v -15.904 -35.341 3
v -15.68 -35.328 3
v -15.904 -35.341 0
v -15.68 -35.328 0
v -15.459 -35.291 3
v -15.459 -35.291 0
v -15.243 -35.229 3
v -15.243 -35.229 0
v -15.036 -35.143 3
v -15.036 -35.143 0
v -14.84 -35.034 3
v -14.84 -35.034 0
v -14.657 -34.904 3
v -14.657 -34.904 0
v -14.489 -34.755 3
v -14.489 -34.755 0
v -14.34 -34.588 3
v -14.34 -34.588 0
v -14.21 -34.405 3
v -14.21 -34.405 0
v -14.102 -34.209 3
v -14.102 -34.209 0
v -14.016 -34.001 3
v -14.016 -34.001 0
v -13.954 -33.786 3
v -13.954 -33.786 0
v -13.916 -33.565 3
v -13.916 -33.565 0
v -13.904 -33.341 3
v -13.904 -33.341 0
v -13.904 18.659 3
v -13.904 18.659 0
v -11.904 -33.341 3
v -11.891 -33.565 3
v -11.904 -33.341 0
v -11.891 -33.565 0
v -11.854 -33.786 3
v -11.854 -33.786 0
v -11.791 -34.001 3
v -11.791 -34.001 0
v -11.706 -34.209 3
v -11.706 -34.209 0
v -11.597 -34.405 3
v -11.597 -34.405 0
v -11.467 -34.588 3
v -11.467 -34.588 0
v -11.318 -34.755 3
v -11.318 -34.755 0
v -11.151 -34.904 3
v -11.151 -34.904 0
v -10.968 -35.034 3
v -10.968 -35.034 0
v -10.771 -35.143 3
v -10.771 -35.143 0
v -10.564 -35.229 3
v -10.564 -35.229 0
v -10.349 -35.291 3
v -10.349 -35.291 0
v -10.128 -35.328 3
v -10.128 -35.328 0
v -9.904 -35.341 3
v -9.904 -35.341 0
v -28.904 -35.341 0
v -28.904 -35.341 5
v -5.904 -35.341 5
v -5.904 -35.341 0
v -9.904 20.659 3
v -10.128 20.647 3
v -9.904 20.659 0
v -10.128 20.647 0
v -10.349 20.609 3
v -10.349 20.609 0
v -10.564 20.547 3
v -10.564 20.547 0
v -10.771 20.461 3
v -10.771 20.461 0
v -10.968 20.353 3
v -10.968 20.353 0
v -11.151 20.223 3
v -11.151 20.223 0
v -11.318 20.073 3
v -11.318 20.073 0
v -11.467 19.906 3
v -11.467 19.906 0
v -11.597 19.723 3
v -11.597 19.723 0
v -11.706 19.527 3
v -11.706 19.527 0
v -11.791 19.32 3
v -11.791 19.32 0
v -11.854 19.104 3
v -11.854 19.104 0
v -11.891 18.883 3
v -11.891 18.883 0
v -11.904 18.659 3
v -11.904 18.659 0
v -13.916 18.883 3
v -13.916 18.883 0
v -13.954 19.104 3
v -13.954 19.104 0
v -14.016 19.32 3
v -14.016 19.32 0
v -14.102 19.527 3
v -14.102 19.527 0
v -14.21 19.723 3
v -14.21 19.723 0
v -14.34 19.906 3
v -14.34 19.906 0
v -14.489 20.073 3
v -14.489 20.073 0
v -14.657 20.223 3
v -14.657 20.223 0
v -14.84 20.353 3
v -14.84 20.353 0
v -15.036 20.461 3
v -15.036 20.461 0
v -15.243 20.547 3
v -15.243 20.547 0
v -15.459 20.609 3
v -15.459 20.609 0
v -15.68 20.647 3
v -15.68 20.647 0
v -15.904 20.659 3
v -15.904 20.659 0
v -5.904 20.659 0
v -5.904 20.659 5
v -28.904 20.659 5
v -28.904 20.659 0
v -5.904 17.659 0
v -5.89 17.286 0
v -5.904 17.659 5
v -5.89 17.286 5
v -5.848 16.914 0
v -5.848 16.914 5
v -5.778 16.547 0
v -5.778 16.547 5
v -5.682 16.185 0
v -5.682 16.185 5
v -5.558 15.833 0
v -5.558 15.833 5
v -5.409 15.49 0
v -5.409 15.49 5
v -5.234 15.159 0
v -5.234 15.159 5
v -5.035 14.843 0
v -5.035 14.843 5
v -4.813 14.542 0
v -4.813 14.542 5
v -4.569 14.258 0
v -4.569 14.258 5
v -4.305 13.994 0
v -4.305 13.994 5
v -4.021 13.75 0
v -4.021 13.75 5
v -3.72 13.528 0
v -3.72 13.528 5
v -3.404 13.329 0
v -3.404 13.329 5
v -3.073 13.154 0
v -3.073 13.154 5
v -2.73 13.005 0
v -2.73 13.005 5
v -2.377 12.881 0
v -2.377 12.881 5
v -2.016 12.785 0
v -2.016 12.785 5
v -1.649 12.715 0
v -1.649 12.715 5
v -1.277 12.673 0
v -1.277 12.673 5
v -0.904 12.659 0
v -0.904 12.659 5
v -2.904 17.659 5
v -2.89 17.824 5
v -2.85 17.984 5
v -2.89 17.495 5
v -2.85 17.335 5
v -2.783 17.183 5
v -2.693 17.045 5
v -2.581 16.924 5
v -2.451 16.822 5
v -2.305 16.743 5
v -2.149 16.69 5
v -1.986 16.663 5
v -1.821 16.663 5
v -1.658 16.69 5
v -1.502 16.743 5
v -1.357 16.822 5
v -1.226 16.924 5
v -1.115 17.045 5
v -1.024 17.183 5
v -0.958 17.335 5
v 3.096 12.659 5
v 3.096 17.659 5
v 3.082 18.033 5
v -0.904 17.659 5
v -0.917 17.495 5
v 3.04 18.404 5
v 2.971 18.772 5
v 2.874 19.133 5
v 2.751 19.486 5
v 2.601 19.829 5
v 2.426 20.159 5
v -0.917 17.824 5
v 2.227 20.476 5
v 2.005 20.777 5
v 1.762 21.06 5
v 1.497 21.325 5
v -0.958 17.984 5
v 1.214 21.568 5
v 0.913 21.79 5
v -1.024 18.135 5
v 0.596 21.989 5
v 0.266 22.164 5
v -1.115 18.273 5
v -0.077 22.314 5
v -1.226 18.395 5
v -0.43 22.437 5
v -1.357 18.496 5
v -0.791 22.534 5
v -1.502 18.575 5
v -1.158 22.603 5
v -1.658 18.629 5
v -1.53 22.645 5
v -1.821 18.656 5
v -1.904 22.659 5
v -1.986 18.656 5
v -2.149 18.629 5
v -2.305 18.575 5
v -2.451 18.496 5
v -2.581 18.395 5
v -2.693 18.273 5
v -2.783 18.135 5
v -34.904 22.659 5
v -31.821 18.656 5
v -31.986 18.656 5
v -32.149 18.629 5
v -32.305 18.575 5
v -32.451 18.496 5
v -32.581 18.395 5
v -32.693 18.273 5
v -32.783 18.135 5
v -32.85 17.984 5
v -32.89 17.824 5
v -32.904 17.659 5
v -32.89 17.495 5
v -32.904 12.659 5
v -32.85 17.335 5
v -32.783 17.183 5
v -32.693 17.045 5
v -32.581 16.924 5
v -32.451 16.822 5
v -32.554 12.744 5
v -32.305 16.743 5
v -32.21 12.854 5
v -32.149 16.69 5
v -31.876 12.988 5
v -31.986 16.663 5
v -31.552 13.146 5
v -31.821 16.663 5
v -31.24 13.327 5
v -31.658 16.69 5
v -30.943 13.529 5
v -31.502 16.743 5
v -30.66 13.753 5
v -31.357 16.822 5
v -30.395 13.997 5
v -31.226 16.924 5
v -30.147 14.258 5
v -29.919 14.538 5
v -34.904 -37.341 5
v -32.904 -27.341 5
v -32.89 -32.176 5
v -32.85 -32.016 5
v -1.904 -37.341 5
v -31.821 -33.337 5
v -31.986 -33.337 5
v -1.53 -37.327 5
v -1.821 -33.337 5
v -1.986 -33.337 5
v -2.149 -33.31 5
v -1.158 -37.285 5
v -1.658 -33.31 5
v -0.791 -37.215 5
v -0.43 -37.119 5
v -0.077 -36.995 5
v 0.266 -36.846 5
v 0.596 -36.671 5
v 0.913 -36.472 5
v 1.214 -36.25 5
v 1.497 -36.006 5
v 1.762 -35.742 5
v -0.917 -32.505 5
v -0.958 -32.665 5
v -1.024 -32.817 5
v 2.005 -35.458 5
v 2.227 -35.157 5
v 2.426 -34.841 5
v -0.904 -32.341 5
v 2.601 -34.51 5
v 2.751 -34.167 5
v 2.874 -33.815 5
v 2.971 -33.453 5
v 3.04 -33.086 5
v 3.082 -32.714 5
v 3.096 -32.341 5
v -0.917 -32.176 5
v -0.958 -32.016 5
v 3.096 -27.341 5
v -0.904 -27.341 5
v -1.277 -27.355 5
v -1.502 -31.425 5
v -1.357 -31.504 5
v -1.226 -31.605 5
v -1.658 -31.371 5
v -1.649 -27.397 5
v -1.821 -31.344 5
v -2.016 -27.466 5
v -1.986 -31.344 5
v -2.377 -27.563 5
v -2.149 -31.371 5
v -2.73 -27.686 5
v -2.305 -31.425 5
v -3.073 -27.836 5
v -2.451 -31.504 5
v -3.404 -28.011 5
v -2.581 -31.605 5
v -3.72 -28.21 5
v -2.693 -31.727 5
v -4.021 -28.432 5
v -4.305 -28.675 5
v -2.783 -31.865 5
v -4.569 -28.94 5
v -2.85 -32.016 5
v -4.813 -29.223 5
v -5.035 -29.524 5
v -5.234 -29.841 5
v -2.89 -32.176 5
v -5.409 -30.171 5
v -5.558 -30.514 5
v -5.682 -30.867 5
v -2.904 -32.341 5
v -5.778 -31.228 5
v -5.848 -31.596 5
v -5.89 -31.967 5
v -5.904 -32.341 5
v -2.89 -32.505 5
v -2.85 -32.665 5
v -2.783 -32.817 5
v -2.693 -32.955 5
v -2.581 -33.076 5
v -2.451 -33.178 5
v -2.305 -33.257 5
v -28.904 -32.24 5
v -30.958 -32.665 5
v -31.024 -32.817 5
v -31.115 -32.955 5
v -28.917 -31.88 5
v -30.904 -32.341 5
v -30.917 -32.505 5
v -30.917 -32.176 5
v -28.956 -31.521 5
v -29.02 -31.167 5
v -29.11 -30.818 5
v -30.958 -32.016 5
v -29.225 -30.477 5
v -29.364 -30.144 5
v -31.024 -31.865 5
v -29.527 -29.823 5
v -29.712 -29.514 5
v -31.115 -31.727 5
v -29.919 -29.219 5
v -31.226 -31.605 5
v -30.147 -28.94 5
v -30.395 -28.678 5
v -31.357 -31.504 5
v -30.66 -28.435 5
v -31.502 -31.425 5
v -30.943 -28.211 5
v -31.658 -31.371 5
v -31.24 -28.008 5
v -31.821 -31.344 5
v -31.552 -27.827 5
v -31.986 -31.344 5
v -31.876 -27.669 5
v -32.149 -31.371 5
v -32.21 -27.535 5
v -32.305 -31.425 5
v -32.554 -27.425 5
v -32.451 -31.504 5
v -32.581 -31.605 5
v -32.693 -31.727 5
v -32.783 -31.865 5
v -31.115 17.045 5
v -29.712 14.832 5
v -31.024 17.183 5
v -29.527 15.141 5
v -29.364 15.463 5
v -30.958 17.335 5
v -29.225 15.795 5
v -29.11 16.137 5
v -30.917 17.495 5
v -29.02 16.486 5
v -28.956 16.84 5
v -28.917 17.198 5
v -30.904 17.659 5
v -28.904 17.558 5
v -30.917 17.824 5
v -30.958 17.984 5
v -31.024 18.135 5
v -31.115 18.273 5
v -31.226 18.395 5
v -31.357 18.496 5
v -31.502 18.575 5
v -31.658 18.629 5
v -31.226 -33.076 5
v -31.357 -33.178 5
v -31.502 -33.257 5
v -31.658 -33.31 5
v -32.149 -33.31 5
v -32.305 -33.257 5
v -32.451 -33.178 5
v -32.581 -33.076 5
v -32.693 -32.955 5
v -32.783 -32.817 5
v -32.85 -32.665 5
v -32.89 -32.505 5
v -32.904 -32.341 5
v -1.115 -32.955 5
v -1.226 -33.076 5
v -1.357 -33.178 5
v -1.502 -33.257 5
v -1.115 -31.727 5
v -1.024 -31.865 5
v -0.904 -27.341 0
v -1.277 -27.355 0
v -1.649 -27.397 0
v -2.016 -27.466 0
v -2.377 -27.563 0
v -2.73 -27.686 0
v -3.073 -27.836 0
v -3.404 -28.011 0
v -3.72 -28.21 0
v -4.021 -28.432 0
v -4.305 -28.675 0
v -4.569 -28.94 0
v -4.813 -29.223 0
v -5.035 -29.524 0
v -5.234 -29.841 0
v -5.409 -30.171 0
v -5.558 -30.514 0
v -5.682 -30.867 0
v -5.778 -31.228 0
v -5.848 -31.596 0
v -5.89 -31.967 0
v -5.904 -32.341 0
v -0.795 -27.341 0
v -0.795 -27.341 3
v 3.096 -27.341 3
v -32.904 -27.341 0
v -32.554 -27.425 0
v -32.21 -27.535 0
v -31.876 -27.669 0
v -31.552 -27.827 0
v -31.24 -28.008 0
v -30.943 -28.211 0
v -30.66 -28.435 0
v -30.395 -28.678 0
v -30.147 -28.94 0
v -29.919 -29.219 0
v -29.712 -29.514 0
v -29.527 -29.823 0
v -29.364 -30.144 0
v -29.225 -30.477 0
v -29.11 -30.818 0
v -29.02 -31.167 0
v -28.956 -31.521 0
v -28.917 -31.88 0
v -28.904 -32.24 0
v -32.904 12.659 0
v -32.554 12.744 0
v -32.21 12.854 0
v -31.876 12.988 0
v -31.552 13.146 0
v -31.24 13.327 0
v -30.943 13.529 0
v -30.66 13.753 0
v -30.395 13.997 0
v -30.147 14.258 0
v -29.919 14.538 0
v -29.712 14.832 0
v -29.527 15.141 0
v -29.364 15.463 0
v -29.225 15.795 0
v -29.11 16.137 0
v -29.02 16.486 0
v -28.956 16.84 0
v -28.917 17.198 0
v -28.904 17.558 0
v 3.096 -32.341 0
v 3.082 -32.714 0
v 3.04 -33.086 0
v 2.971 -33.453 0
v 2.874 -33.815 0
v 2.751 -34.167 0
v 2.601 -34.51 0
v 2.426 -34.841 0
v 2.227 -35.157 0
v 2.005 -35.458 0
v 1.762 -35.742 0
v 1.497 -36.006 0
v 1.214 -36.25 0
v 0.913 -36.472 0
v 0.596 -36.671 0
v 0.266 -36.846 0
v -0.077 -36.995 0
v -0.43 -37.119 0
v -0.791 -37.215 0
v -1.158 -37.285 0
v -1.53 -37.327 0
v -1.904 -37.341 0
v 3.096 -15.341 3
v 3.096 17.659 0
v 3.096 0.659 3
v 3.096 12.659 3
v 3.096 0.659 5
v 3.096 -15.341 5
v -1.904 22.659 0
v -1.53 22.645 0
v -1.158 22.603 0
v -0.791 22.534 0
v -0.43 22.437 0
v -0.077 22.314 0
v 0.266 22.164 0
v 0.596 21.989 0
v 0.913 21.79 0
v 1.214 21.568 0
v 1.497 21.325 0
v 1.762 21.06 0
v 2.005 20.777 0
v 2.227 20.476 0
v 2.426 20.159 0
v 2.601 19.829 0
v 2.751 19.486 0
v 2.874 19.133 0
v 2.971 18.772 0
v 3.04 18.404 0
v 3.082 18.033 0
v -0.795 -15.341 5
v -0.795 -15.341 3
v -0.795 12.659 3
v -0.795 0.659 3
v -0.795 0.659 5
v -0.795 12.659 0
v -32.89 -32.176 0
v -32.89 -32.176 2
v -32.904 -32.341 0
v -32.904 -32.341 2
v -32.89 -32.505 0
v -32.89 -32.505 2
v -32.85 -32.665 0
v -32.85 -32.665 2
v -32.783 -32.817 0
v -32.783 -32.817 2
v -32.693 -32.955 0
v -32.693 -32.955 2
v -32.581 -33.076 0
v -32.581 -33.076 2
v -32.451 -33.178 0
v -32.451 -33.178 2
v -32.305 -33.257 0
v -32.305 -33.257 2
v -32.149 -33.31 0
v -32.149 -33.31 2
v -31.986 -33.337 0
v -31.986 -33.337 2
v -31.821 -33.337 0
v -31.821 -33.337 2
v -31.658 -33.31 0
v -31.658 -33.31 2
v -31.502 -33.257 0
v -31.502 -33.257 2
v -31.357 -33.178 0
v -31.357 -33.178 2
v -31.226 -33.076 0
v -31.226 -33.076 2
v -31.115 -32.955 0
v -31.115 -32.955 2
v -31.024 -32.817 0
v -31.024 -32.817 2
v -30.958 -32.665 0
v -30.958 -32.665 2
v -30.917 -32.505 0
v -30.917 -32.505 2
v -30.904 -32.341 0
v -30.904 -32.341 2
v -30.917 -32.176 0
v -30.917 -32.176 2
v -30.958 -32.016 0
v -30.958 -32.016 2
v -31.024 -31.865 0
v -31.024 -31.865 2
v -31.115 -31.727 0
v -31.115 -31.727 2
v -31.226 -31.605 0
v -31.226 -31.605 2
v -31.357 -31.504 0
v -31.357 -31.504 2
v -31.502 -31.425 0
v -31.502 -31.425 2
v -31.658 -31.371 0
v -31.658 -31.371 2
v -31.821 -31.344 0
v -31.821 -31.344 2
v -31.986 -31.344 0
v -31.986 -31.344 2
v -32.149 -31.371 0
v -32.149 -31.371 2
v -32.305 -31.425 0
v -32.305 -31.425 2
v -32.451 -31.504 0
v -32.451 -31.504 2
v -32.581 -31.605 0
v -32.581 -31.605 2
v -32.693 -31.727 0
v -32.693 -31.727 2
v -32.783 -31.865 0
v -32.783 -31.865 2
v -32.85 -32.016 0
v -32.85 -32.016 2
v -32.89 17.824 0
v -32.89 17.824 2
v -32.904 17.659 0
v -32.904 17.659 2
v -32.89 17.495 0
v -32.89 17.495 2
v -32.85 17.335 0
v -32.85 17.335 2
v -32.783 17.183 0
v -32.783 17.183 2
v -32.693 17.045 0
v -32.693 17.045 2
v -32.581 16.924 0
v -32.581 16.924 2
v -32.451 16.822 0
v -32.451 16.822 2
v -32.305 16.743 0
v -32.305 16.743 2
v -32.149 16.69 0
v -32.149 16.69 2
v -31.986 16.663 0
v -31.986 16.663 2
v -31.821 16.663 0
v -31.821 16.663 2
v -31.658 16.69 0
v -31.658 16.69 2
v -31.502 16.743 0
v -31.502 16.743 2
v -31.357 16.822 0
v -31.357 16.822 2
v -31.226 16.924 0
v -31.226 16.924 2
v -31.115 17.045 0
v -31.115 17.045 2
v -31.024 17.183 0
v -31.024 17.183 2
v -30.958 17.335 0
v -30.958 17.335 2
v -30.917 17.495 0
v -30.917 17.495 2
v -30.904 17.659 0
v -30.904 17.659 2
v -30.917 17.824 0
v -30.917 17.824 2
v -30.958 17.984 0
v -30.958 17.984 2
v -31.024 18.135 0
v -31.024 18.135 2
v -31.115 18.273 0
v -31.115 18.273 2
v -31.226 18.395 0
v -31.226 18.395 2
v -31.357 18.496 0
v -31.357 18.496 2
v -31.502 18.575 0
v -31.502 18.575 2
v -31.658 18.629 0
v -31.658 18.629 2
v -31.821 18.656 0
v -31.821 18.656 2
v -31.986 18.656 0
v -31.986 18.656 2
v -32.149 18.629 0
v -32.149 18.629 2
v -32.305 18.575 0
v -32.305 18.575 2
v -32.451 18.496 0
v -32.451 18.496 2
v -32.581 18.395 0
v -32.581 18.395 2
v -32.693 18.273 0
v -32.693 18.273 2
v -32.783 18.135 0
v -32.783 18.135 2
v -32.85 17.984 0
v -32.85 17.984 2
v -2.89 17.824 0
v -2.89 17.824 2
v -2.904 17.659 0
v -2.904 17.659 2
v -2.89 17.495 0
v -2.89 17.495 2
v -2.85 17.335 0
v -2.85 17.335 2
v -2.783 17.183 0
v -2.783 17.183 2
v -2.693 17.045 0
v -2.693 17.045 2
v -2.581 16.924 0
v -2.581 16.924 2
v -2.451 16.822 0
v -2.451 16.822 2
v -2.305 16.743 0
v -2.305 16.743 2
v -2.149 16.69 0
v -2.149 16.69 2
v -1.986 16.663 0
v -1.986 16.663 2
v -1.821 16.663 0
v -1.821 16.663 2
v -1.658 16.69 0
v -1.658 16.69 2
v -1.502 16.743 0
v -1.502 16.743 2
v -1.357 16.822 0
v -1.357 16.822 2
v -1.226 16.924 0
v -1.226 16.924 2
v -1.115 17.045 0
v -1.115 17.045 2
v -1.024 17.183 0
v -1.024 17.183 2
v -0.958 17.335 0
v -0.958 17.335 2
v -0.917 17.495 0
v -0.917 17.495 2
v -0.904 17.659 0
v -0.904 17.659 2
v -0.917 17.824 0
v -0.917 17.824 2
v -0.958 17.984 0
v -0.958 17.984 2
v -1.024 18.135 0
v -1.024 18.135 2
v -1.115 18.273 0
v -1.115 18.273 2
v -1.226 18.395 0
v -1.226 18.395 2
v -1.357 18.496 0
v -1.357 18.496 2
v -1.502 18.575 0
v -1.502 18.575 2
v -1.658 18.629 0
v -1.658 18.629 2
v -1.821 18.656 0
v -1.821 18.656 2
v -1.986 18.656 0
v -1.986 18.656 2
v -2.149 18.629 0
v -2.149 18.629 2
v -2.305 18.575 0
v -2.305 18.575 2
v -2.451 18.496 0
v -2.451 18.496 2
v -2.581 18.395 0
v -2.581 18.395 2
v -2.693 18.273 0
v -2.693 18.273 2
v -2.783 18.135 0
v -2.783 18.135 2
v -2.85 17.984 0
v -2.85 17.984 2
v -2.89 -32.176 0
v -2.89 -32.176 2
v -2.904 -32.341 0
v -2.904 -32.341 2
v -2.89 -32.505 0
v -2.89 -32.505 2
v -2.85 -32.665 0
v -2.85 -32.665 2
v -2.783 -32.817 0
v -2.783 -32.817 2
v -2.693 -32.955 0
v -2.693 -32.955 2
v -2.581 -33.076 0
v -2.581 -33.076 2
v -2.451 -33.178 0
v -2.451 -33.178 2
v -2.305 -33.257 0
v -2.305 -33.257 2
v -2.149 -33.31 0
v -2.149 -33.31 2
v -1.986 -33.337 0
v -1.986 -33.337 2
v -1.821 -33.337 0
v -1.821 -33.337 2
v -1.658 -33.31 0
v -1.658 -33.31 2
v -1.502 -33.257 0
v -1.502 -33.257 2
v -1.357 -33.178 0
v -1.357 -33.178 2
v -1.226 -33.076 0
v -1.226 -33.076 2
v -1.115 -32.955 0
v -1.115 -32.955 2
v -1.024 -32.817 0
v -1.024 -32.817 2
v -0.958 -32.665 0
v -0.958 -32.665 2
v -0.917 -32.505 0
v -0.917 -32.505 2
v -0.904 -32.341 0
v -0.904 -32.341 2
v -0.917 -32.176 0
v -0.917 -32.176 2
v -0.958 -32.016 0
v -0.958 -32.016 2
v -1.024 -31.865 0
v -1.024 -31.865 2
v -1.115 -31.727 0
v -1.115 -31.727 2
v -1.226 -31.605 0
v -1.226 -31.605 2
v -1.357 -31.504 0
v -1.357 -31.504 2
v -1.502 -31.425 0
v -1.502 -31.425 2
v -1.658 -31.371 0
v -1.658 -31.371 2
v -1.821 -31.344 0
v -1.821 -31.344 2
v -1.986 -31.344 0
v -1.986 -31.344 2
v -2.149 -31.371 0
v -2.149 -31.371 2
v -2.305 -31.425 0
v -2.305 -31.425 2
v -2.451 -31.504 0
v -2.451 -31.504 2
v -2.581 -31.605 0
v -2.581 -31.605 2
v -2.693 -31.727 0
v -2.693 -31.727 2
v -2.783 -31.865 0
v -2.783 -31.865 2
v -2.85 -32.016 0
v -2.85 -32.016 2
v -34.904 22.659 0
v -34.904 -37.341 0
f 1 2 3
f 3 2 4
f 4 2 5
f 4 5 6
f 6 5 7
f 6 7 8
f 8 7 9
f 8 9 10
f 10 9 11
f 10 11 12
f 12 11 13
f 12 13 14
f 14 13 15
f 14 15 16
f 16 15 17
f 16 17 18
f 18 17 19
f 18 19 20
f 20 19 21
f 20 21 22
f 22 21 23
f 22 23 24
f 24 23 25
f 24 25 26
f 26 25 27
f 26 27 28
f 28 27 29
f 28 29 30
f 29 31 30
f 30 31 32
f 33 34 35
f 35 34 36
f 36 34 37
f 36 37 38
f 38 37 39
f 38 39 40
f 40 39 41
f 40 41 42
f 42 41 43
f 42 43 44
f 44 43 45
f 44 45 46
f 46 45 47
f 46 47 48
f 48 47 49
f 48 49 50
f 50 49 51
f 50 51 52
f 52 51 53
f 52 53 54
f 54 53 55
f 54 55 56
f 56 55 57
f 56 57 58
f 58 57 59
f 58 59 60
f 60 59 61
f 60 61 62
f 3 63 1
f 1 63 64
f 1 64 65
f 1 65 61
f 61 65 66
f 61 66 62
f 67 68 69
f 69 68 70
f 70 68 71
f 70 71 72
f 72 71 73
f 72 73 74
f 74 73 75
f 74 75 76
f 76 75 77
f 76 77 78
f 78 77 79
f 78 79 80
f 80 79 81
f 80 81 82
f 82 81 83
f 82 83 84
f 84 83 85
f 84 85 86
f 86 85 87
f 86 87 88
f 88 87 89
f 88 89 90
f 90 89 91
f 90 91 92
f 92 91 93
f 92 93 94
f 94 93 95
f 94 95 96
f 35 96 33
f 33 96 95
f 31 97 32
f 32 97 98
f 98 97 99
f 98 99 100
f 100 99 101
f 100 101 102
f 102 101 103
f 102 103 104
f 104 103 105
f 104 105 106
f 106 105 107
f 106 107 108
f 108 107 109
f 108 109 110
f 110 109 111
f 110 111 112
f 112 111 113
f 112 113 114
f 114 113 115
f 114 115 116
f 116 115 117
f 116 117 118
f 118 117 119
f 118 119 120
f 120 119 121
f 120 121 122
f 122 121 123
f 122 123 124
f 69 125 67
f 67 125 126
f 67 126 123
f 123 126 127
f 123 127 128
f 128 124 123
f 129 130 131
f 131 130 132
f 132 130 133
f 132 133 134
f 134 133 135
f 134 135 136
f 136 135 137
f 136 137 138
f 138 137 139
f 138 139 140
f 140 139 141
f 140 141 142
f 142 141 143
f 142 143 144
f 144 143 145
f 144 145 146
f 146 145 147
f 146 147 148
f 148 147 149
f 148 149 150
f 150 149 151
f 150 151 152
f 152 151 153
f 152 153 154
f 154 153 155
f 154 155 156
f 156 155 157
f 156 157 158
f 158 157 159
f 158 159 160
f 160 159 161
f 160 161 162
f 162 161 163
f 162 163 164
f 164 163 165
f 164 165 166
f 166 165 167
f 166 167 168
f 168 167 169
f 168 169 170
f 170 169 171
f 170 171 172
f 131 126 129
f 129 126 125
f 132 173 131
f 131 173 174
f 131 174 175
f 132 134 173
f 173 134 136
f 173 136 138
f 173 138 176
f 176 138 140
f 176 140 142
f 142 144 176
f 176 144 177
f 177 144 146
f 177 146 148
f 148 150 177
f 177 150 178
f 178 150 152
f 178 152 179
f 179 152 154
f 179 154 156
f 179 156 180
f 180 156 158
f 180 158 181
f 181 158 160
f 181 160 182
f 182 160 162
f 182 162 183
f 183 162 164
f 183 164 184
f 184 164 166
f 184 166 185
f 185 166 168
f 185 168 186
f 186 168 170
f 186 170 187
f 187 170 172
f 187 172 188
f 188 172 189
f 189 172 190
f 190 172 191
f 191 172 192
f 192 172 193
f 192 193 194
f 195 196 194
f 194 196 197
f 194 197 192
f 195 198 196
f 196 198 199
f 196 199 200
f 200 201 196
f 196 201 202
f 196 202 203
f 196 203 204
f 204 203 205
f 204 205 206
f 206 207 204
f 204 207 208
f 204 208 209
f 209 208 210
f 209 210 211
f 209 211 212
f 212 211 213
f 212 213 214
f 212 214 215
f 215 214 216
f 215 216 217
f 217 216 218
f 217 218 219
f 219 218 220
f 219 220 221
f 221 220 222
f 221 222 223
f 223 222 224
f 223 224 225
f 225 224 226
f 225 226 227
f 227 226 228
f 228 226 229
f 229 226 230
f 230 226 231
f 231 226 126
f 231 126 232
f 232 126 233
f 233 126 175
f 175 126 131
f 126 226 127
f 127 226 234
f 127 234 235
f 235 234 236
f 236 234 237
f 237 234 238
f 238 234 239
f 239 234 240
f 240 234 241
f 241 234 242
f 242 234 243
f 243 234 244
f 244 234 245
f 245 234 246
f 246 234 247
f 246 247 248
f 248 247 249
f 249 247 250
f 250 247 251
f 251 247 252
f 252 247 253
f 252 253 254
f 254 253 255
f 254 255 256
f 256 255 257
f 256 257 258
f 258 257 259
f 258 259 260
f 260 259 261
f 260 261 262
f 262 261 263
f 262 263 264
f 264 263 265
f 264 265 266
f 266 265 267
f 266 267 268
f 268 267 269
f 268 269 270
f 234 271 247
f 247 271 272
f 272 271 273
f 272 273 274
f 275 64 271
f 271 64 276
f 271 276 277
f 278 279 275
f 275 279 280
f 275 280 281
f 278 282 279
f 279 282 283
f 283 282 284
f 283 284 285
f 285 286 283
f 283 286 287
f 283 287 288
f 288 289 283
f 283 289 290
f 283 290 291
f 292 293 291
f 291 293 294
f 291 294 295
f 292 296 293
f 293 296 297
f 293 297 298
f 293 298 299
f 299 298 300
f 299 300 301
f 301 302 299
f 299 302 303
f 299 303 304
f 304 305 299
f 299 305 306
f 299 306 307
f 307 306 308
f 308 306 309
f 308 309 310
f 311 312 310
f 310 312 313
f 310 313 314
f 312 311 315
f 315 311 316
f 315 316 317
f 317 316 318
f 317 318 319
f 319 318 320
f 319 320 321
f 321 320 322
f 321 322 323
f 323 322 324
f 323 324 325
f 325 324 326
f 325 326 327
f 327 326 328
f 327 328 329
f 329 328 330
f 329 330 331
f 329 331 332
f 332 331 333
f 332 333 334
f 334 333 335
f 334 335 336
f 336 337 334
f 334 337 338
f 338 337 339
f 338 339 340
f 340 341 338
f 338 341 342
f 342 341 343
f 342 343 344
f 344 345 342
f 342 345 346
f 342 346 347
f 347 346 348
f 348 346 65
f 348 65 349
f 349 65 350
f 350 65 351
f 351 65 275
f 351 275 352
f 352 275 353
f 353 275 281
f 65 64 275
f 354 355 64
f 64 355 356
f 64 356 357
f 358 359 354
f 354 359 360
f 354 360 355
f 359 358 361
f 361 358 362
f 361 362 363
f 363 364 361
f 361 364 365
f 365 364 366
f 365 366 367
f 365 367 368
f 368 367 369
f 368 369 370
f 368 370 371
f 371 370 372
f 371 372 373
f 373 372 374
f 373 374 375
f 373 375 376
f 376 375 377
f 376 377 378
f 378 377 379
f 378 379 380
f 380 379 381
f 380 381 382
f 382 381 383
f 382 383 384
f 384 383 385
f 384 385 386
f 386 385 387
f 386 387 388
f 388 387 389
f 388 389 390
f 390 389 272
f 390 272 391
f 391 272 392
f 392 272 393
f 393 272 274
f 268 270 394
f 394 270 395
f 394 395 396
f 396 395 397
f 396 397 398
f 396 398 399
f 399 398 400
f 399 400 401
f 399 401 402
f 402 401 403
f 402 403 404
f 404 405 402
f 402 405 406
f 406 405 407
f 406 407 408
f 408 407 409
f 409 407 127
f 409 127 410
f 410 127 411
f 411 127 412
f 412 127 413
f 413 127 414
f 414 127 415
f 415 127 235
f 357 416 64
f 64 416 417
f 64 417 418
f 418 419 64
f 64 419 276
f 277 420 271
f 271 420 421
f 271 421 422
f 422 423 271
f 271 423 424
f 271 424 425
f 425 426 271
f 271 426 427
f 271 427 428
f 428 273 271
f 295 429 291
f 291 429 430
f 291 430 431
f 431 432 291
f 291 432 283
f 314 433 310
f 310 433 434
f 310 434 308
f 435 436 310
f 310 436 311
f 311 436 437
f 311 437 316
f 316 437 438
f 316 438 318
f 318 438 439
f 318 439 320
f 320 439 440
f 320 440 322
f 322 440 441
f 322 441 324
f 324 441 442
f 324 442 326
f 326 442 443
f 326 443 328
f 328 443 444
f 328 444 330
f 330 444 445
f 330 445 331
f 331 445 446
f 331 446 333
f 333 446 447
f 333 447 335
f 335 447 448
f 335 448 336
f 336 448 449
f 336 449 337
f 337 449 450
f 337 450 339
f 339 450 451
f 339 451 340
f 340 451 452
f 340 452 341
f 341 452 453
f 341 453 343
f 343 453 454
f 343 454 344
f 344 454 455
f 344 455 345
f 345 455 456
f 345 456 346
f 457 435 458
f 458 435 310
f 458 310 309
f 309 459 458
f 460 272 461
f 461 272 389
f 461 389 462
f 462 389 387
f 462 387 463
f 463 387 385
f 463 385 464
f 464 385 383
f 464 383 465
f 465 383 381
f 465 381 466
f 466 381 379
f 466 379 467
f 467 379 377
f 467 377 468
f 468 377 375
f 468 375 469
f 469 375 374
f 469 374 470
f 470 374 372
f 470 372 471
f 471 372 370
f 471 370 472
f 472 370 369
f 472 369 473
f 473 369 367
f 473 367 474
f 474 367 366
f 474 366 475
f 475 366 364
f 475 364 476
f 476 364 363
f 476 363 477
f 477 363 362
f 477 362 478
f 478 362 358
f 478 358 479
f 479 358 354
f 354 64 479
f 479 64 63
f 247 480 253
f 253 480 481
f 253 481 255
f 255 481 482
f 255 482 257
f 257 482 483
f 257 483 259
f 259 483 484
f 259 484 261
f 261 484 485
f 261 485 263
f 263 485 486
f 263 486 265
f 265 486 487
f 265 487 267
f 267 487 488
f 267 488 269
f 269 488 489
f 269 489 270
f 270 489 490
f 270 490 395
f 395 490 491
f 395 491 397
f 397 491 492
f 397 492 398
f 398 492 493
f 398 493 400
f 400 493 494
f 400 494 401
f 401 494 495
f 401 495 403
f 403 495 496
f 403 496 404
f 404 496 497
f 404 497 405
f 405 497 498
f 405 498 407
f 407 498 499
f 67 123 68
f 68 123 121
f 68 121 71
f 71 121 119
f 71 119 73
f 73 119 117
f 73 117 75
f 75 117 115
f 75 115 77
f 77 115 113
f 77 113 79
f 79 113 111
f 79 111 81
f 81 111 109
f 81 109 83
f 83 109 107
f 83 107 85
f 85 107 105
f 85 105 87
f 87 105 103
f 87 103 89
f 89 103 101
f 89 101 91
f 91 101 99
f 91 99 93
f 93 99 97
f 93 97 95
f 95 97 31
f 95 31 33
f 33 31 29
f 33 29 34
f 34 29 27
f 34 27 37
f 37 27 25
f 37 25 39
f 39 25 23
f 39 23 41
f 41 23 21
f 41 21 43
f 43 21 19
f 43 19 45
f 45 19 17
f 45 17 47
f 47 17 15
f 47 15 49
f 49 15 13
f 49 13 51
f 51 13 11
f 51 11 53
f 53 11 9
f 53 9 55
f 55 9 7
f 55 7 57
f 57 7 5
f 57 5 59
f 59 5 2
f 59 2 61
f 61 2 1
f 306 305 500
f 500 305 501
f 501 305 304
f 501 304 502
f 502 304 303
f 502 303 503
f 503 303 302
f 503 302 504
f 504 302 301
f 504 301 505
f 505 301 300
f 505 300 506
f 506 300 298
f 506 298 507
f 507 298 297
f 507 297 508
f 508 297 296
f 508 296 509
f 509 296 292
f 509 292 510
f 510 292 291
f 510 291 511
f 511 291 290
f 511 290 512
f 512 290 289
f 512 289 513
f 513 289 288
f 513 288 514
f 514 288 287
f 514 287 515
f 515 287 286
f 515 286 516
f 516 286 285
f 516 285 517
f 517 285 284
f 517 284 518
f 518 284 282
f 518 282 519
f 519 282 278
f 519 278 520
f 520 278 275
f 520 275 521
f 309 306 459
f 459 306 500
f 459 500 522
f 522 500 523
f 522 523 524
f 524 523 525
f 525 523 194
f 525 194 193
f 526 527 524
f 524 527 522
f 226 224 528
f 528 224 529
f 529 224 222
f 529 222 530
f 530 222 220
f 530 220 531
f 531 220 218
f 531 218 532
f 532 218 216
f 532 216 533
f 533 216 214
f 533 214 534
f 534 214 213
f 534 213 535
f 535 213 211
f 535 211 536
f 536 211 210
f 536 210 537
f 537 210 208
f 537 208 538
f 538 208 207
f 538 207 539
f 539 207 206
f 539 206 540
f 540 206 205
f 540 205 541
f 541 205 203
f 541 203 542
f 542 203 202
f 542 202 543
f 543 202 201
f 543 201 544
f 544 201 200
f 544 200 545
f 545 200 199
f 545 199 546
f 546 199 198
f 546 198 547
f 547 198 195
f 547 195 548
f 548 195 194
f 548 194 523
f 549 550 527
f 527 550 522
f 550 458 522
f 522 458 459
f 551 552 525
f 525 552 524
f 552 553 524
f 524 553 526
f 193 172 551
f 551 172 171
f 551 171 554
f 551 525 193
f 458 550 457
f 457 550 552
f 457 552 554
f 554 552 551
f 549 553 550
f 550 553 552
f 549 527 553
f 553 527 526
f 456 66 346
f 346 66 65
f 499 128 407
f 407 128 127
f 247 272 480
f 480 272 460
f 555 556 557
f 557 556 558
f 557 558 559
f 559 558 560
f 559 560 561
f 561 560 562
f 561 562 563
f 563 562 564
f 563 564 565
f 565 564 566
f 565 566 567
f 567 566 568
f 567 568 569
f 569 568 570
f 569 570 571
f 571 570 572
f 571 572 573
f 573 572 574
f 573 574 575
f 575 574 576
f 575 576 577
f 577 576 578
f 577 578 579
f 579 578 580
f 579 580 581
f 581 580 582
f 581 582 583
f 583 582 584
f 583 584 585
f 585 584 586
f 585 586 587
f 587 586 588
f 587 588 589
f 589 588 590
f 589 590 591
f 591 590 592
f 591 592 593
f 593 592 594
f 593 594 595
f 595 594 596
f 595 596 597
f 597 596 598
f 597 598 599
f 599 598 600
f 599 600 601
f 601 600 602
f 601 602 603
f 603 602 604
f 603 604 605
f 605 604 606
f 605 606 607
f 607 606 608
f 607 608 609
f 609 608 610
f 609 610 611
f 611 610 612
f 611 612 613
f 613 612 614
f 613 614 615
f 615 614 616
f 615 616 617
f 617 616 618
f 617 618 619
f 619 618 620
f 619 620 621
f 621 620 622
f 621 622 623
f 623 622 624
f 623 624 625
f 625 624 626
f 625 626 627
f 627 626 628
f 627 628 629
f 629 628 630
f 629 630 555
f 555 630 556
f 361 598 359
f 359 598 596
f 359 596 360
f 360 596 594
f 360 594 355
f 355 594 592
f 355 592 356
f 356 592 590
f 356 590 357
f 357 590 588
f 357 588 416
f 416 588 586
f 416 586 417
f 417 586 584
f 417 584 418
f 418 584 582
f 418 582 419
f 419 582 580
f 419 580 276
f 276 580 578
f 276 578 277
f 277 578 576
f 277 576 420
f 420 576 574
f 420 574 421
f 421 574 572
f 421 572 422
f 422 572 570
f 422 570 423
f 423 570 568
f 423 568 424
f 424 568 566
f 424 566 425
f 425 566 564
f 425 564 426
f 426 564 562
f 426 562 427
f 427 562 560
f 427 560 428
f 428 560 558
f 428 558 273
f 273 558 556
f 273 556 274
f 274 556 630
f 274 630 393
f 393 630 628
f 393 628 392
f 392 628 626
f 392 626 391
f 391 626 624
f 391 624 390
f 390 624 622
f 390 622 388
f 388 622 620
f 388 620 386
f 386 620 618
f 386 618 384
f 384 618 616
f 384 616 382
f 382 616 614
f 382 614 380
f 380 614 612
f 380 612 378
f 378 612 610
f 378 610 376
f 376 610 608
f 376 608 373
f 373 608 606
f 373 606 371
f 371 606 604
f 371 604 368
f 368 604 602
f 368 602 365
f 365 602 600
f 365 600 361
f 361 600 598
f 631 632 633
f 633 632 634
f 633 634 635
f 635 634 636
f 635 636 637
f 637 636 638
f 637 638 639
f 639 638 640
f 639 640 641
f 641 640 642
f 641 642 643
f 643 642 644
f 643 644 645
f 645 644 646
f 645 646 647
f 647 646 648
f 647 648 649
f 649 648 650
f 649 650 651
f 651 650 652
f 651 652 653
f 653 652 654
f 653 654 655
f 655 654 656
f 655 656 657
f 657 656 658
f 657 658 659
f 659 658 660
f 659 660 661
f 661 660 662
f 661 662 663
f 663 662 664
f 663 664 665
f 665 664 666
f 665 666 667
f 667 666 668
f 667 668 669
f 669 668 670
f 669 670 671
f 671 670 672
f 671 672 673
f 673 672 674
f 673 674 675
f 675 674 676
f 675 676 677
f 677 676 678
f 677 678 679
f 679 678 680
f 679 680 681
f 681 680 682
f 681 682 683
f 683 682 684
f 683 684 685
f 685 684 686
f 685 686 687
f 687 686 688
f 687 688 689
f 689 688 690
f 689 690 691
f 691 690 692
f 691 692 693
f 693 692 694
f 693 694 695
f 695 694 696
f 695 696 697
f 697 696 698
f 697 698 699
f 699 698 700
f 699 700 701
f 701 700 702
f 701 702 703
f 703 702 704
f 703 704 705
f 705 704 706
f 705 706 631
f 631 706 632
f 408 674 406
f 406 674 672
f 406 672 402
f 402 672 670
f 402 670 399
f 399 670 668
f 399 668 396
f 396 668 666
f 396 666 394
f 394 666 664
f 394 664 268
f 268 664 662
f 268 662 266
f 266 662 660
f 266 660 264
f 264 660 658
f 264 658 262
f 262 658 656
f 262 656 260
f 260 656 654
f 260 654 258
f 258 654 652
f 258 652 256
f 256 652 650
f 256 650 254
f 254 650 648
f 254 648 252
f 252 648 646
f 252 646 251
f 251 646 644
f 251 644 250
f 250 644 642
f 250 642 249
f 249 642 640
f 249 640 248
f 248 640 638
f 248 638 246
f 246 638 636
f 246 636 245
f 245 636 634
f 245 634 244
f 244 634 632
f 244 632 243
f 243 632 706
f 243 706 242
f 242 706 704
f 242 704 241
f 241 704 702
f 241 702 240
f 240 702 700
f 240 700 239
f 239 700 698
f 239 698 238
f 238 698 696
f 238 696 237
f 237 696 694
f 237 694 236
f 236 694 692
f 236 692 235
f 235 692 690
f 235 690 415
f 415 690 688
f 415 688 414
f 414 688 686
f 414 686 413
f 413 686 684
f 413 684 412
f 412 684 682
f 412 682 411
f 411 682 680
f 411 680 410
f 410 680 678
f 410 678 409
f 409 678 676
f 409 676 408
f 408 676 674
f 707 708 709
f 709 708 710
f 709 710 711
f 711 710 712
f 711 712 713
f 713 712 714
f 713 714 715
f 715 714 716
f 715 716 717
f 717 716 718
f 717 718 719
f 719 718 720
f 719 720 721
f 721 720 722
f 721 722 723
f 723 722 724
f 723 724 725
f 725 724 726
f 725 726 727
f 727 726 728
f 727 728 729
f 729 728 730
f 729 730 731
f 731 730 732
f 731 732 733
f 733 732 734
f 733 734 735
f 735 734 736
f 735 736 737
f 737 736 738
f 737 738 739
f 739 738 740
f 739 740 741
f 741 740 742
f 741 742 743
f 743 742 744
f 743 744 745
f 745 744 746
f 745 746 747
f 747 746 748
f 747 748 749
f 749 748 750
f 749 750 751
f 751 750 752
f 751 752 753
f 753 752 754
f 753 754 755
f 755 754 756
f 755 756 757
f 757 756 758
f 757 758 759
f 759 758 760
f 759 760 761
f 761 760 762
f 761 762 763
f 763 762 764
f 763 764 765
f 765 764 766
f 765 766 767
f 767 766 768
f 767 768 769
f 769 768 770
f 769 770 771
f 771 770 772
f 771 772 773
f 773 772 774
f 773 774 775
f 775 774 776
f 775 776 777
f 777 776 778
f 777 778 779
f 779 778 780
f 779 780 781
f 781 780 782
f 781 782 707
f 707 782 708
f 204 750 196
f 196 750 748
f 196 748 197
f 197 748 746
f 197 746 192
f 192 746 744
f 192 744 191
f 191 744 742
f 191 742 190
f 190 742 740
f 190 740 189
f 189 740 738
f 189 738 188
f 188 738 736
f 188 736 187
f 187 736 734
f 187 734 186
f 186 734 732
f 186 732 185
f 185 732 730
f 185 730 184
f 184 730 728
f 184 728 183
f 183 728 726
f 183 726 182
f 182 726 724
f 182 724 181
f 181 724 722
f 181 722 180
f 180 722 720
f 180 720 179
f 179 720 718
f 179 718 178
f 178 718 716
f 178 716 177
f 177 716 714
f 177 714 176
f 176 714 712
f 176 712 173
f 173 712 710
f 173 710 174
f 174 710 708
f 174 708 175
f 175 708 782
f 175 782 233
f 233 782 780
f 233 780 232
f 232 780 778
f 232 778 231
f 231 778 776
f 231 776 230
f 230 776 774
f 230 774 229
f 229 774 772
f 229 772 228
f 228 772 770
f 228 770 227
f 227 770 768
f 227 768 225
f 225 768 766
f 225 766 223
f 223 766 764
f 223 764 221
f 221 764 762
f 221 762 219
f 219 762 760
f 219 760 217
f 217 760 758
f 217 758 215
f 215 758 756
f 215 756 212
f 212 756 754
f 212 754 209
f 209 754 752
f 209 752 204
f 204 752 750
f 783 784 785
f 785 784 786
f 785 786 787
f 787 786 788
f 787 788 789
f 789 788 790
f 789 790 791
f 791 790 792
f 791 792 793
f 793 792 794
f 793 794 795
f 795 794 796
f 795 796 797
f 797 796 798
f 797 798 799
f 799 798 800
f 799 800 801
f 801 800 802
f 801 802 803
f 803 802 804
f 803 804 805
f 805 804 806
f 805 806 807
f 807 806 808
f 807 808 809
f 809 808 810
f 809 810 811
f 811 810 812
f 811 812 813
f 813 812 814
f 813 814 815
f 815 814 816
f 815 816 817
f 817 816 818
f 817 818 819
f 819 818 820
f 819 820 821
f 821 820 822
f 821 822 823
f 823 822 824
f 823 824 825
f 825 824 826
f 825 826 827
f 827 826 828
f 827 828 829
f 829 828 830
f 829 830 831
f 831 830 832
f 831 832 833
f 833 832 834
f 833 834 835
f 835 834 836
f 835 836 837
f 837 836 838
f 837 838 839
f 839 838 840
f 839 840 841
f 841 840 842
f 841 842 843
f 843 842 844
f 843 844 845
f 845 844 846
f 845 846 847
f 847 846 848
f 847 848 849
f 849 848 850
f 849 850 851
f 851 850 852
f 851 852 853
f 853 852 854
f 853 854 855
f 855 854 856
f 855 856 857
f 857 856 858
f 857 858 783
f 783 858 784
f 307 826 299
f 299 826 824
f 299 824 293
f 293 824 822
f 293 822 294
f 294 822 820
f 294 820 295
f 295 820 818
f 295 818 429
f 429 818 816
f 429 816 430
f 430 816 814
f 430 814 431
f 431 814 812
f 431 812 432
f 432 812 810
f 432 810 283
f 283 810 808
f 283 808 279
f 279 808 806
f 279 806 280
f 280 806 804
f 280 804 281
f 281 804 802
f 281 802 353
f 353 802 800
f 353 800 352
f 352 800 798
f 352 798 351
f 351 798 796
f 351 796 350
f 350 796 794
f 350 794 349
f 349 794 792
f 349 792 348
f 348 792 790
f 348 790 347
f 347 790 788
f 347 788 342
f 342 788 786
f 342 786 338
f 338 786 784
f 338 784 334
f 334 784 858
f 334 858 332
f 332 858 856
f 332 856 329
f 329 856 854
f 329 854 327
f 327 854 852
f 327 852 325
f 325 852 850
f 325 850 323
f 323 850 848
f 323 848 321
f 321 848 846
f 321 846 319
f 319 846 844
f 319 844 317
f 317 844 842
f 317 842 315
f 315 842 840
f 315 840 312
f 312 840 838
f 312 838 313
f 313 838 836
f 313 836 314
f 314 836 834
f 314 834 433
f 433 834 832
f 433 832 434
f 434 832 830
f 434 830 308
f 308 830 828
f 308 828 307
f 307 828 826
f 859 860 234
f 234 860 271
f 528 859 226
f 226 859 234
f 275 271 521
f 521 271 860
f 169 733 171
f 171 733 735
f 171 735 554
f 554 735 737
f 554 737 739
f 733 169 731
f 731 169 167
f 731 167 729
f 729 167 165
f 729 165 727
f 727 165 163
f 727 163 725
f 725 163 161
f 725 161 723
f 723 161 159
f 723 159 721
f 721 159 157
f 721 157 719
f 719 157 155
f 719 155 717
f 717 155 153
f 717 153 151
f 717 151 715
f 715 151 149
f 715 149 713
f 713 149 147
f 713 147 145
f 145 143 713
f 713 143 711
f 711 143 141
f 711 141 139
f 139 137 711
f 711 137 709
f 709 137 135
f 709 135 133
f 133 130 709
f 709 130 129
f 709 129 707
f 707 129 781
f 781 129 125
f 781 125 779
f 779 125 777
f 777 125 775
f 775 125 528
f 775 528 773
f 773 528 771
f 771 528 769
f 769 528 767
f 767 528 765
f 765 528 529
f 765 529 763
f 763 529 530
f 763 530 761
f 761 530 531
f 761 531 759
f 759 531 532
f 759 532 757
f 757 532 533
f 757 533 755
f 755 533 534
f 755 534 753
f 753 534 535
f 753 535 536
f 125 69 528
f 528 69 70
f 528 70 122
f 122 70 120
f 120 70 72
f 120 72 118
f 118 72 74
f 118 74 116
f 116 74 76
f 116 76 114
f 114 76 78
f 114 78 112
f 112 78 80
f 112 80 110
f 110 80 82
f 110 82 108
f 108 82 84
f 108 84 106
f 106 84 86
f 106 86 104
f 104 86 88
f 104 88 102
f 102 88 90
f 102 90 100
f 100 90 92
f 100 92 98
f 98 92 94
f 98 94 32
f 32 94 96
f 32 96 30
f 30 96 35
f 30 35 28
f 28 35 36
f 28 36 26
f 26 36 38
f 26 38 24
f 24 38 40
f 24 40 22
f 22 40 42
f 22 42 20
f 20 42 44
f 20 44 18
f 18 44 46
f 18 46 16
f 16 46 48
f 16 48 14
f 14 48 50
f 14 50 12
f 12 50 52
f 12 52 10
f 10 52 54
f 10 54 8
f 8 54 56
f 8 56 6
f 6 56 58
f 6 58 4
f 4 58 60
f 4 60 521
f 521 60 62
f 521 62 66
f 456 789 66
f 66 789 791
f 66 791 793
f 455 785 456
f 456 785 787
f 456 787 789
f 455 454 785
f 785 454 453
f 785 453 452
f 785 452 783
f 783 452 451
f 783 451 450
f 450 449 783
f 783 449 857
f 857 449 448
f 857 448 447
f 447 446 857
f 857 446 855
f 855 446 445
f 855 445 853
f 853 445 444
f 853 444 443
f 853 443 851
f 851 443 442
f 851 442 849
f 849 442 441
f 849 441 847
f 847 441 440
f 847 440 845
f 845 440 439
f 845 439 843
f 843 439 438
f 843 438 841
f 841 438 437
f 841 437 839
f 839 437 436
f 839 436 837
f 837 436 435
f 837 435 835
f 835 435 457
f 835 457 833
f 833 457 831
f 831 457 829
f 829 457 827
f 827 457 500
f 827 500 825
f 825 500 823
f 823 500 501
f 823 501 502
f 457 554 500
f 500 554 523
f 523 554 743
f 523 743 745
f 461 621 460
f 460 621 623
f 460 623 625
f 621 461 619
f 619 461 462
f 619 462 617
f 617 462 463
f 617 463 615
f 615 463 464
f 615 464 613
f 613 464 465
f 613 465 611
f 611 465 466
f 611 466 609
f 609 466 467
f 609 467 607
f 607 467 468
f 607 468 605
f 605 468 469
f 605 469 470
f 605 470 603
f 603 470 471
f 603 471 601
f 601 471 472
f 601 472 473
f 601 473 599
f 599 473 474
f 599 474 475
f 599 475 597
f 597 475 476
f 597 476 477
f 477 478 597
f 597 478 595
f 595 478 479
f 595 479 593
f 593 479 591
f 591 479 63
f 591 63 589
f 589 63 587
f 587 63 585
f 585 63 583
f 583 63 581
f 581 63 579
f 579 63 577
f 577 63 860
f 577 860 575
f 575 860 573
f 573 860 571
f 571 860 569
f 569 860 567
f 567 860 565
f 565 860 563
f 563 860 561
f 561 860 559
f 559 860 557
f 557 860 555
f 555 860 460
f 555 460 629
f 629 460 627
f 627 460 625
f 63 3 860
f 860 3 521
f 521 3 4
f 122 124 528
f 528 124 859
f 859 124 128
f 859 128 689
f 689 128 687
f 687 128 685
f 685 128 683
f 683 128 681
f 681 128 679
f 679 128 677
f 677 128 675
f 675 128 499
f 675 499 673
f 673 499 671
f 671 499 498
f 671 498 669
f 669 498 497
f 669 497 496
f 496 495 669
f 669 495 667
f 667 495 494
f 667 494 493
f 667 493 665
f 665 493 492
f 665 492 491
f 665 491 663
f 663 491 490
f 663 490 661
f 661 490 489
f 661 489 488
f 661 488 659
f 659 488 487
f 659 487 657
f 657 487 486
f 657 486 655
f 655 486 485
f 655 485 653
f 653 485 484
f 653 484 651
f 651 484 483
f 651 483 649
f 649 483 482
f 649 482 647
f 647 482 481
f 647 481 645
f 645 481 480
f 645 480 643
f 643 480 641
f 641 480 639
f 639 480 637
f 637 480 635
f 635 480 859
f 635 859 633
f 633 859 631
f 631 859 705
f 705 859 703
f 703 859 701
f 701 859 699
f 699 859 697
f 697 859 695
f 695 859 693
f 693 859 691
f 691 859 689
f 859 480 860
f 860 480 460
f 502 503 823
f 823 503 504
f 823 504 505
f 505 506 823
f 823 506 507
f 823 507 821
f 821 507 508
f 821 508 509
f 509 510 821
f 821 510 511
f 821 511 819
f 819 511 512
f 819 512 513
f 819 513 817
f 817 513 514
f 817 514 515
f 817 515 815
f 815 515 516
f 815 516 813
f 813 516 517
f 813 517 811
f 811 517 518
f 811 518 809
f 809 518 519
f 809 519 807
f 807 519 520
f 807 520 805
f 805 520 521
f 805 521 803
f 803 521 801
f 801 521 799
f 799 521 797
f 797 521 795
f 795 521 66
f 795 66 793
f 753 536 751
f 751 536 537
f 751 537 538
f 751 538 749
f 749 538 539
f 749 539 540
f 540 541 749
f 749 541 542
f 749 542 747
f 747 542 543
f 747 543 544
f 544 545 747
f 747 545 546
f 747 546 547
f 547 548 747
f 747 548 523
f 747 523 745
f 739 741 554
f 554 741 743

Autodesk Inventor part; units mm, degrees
ref_plane "YZ Plane" through (0, 0, 0) normal (1, 0, 0) x (0, 1, 0)
ref_plane "XZ Plane" through (0, 0, 0) normal (0, 1, 0) x (-1, 0, 0)
ref_plane "XY Plane" through (0, 0, 0) normal (0, 0, 1) x (1, 0, 0)
sketch "Sketch1" plane through (0, 0, 0) normal (0, 0, 1) x (1, 0, 0)
  line L0 (-34.9037, 22.6593) -> (3.0963, 22.6593)
  line L1 (3.0963, 22.6593) -> (3.0963, -37.3407)
  line L2 (3.0963, -37.3407) -> (-34.9037, -37.3407)
  line L3 (-34.9037, -37.3407) -> (-34.9037, 22.6593)
  point P0 (0, 0)
  dimension "d0" = 38
  dimension "d1" = 60
extrude "Extrusion1" add sketch "Sketch1" along normal blind 5
sketch "Sketch2" plane through (0, 0, 5) normal (0, 0, 1) x (1, 0, 0)
  line L0 (3.0963, -37.3407) -> (3.0963, 22.6593) projected
  line L1 (3.0963, 22.6593) -> (-34.9037, 22.6593) projected
  line L2 (-34.9037, -37.3407) -> (3.0963, -37.3407) projected
  point P0 (0, 0)
  point P1 (-31.9037, 17.6593)
  point P2 (-1.9037, 17.6593)
  point P3 (-31.9037, -32.3407)
  point P4 (-1.9037, -32.3407)
  dimension "d4" = 30
  dimension "d5" = 30
  dimension "d6" = 5
  dimension "d7" = 5
  dimension "d8" = 5
  dimension "d9" = 5
  dimension "d10" = 5
  dimension "d11" = 5
hole "Hole1" at (-31.9037, 17.6593, 5) at (-1.9037, 17.6593, 5) at (-31.9037, -32.3407, 5) at (-1.9037, -32.3407, 5) direction (0, 0, -1) diameter 2 depth 10 tip angle 118
sketch "Sketch3" plane through (0, 0, 5) normal (0, 0, 1) x (1, 0, 0)
  line L0 (-28.9037, 20.6593) -> (-5.9037, 20.6593)
  line L1 (-5.9037, 20.6593) -> (-5.9037, -35.3407)
  line L2 (-5.9037, -35.3407) -> (-28.9037, -35.3407)
  line L3 (-28.9037, -35.3407) -> (-28.9037, 20.6593)
  line L4 (-32.9037, 12.6593) -> (-0.795, 12.6593)
  line L5 (-0.795, 12.6593) -> (-0.795, -27.3407)
  line L6 (-0.795, -27.3407) -> (-32.9037, -27.3407)
  line L7 (-32.9037, -27.3407) -> (-32.9037, 12.6593)
  line L8 (-34.9037, 22.6593) -> (-34.9037, -37.3407) projected
  line L9 (3.0963, -37.3407) -> (3.0963, 22.6593) projected
  line L10 (3.0963, 22.6593) -> (-34.9037, 22.6593) projected
  line L11 (-34.9037, -37.3407) -> (3.0963, -37.3407) projected
  point P0 (0, 0)
  point P1 (-28.9037, 12.6593)
  point P2 (-28.9037, -27.3407)
  point P3 (-5.9037, -27.3407)
  point P4 (-5.9037, 12.6593)
  dimension "d19" = 2
  dimension "d20" = 3.8913
  dimension "d21" = 2
  dimension "d22" = 2
  dimension "d23" = 6
  dimension "d24" = 9
  dimension "d25" = 10
  dimension "d26" = 10
extrude "Extrusion2" cut sketch "Sketch3" against normal blind 5 contours L0 L1 L4 L3 | L4 L1 L6 L3 | L3 L6 L7 L4 | L4 L5 L6 L1 | L6 L1 L2 L3
sketch "Sketch4" plane through (3.0963, -37.3407, 0) normal (1, 0, 0) x (0, 0, -1)
  line L0 (-5, 50) -> (-3, 50)
  line L1 (-3, 50) -> (-3, 38)
  line L2 (-3, 38) -> (-5, 38)
  line L3 (-5, 38) -> (-5, 50)
  line L4 (-5, 60) -> (-5, 0) projected
  line L5 (-5, 10) -> (-3, 10)
  line L6 (-3, 10) -> (-3, 22)
  line L7 (-3, 22) -> (-5, 22)
  line L8 (-5, 22) -> (-5, 10)
  line L9 (-5, 10) -> (0, 10) projected
  line L10 (-5, 50) -> (0, 50) projected
  point P0 (0, 37.3407)
  dimension "d29" = 12
  dimension "d30" = 12
  dimension "d31" = 0
  dimension "d32" = 2
extrude "Extrusion3" cut sketch "Sketch4" against normal blind 5
fillet "Fillet1" radius 5 2 edges at (3.0963, 22.6593, 2.5) (3.0963, -37.3407, 2.5)
sketch "Sketch5" plane through (0, 0, 0) normal (0, 0, -1) x (-1, 0, 0)
  line L0 (5.9037, 20.6593) -> (28.9037, 20.6593) projected
  line L1 (13.9037, 20.6593) -> (11.9037, 20.6593)
  line L2 (11.9037, 20.6593) -> (11.9037, -35.3407)
  line L3 (11.9037, -35.3407) -> (13.9037, -35.3407)
  line L4 (13.9037, -35.3407) -> (13.9037, 20.6593)
  line L5 (-3.0963, -32.3407) -> (-3.0963, 17.6593) projected
  line L6 (28.9037, -35.3407) -> (5.9037, -35.3407) projected
  point P0 (0, 0)
  dimension "d36" = 15
  dimension "d37" = 2
extrude "Extrusion4" add sketch "Sketch5" against normal blind 3
fillet "Fillet2" radius 5 4 edges at (-28.9037, 12.6593, 2.5) (-28.9037, -27.3407, 2.5) (-5.9037, -27.3407, 2.5) (-5.9037, 12.6593, 2.5)
fillet "Fillet3" radius 2 4 edges at (-13.9037, 20.6593, 1.5) (-11.9037, 20.6593, 1.5) (-11.9037, -35.3407, 1.5) (-13.9037, -35.3407, 1.5)
properties part number "atx-adapter_cable-press"
